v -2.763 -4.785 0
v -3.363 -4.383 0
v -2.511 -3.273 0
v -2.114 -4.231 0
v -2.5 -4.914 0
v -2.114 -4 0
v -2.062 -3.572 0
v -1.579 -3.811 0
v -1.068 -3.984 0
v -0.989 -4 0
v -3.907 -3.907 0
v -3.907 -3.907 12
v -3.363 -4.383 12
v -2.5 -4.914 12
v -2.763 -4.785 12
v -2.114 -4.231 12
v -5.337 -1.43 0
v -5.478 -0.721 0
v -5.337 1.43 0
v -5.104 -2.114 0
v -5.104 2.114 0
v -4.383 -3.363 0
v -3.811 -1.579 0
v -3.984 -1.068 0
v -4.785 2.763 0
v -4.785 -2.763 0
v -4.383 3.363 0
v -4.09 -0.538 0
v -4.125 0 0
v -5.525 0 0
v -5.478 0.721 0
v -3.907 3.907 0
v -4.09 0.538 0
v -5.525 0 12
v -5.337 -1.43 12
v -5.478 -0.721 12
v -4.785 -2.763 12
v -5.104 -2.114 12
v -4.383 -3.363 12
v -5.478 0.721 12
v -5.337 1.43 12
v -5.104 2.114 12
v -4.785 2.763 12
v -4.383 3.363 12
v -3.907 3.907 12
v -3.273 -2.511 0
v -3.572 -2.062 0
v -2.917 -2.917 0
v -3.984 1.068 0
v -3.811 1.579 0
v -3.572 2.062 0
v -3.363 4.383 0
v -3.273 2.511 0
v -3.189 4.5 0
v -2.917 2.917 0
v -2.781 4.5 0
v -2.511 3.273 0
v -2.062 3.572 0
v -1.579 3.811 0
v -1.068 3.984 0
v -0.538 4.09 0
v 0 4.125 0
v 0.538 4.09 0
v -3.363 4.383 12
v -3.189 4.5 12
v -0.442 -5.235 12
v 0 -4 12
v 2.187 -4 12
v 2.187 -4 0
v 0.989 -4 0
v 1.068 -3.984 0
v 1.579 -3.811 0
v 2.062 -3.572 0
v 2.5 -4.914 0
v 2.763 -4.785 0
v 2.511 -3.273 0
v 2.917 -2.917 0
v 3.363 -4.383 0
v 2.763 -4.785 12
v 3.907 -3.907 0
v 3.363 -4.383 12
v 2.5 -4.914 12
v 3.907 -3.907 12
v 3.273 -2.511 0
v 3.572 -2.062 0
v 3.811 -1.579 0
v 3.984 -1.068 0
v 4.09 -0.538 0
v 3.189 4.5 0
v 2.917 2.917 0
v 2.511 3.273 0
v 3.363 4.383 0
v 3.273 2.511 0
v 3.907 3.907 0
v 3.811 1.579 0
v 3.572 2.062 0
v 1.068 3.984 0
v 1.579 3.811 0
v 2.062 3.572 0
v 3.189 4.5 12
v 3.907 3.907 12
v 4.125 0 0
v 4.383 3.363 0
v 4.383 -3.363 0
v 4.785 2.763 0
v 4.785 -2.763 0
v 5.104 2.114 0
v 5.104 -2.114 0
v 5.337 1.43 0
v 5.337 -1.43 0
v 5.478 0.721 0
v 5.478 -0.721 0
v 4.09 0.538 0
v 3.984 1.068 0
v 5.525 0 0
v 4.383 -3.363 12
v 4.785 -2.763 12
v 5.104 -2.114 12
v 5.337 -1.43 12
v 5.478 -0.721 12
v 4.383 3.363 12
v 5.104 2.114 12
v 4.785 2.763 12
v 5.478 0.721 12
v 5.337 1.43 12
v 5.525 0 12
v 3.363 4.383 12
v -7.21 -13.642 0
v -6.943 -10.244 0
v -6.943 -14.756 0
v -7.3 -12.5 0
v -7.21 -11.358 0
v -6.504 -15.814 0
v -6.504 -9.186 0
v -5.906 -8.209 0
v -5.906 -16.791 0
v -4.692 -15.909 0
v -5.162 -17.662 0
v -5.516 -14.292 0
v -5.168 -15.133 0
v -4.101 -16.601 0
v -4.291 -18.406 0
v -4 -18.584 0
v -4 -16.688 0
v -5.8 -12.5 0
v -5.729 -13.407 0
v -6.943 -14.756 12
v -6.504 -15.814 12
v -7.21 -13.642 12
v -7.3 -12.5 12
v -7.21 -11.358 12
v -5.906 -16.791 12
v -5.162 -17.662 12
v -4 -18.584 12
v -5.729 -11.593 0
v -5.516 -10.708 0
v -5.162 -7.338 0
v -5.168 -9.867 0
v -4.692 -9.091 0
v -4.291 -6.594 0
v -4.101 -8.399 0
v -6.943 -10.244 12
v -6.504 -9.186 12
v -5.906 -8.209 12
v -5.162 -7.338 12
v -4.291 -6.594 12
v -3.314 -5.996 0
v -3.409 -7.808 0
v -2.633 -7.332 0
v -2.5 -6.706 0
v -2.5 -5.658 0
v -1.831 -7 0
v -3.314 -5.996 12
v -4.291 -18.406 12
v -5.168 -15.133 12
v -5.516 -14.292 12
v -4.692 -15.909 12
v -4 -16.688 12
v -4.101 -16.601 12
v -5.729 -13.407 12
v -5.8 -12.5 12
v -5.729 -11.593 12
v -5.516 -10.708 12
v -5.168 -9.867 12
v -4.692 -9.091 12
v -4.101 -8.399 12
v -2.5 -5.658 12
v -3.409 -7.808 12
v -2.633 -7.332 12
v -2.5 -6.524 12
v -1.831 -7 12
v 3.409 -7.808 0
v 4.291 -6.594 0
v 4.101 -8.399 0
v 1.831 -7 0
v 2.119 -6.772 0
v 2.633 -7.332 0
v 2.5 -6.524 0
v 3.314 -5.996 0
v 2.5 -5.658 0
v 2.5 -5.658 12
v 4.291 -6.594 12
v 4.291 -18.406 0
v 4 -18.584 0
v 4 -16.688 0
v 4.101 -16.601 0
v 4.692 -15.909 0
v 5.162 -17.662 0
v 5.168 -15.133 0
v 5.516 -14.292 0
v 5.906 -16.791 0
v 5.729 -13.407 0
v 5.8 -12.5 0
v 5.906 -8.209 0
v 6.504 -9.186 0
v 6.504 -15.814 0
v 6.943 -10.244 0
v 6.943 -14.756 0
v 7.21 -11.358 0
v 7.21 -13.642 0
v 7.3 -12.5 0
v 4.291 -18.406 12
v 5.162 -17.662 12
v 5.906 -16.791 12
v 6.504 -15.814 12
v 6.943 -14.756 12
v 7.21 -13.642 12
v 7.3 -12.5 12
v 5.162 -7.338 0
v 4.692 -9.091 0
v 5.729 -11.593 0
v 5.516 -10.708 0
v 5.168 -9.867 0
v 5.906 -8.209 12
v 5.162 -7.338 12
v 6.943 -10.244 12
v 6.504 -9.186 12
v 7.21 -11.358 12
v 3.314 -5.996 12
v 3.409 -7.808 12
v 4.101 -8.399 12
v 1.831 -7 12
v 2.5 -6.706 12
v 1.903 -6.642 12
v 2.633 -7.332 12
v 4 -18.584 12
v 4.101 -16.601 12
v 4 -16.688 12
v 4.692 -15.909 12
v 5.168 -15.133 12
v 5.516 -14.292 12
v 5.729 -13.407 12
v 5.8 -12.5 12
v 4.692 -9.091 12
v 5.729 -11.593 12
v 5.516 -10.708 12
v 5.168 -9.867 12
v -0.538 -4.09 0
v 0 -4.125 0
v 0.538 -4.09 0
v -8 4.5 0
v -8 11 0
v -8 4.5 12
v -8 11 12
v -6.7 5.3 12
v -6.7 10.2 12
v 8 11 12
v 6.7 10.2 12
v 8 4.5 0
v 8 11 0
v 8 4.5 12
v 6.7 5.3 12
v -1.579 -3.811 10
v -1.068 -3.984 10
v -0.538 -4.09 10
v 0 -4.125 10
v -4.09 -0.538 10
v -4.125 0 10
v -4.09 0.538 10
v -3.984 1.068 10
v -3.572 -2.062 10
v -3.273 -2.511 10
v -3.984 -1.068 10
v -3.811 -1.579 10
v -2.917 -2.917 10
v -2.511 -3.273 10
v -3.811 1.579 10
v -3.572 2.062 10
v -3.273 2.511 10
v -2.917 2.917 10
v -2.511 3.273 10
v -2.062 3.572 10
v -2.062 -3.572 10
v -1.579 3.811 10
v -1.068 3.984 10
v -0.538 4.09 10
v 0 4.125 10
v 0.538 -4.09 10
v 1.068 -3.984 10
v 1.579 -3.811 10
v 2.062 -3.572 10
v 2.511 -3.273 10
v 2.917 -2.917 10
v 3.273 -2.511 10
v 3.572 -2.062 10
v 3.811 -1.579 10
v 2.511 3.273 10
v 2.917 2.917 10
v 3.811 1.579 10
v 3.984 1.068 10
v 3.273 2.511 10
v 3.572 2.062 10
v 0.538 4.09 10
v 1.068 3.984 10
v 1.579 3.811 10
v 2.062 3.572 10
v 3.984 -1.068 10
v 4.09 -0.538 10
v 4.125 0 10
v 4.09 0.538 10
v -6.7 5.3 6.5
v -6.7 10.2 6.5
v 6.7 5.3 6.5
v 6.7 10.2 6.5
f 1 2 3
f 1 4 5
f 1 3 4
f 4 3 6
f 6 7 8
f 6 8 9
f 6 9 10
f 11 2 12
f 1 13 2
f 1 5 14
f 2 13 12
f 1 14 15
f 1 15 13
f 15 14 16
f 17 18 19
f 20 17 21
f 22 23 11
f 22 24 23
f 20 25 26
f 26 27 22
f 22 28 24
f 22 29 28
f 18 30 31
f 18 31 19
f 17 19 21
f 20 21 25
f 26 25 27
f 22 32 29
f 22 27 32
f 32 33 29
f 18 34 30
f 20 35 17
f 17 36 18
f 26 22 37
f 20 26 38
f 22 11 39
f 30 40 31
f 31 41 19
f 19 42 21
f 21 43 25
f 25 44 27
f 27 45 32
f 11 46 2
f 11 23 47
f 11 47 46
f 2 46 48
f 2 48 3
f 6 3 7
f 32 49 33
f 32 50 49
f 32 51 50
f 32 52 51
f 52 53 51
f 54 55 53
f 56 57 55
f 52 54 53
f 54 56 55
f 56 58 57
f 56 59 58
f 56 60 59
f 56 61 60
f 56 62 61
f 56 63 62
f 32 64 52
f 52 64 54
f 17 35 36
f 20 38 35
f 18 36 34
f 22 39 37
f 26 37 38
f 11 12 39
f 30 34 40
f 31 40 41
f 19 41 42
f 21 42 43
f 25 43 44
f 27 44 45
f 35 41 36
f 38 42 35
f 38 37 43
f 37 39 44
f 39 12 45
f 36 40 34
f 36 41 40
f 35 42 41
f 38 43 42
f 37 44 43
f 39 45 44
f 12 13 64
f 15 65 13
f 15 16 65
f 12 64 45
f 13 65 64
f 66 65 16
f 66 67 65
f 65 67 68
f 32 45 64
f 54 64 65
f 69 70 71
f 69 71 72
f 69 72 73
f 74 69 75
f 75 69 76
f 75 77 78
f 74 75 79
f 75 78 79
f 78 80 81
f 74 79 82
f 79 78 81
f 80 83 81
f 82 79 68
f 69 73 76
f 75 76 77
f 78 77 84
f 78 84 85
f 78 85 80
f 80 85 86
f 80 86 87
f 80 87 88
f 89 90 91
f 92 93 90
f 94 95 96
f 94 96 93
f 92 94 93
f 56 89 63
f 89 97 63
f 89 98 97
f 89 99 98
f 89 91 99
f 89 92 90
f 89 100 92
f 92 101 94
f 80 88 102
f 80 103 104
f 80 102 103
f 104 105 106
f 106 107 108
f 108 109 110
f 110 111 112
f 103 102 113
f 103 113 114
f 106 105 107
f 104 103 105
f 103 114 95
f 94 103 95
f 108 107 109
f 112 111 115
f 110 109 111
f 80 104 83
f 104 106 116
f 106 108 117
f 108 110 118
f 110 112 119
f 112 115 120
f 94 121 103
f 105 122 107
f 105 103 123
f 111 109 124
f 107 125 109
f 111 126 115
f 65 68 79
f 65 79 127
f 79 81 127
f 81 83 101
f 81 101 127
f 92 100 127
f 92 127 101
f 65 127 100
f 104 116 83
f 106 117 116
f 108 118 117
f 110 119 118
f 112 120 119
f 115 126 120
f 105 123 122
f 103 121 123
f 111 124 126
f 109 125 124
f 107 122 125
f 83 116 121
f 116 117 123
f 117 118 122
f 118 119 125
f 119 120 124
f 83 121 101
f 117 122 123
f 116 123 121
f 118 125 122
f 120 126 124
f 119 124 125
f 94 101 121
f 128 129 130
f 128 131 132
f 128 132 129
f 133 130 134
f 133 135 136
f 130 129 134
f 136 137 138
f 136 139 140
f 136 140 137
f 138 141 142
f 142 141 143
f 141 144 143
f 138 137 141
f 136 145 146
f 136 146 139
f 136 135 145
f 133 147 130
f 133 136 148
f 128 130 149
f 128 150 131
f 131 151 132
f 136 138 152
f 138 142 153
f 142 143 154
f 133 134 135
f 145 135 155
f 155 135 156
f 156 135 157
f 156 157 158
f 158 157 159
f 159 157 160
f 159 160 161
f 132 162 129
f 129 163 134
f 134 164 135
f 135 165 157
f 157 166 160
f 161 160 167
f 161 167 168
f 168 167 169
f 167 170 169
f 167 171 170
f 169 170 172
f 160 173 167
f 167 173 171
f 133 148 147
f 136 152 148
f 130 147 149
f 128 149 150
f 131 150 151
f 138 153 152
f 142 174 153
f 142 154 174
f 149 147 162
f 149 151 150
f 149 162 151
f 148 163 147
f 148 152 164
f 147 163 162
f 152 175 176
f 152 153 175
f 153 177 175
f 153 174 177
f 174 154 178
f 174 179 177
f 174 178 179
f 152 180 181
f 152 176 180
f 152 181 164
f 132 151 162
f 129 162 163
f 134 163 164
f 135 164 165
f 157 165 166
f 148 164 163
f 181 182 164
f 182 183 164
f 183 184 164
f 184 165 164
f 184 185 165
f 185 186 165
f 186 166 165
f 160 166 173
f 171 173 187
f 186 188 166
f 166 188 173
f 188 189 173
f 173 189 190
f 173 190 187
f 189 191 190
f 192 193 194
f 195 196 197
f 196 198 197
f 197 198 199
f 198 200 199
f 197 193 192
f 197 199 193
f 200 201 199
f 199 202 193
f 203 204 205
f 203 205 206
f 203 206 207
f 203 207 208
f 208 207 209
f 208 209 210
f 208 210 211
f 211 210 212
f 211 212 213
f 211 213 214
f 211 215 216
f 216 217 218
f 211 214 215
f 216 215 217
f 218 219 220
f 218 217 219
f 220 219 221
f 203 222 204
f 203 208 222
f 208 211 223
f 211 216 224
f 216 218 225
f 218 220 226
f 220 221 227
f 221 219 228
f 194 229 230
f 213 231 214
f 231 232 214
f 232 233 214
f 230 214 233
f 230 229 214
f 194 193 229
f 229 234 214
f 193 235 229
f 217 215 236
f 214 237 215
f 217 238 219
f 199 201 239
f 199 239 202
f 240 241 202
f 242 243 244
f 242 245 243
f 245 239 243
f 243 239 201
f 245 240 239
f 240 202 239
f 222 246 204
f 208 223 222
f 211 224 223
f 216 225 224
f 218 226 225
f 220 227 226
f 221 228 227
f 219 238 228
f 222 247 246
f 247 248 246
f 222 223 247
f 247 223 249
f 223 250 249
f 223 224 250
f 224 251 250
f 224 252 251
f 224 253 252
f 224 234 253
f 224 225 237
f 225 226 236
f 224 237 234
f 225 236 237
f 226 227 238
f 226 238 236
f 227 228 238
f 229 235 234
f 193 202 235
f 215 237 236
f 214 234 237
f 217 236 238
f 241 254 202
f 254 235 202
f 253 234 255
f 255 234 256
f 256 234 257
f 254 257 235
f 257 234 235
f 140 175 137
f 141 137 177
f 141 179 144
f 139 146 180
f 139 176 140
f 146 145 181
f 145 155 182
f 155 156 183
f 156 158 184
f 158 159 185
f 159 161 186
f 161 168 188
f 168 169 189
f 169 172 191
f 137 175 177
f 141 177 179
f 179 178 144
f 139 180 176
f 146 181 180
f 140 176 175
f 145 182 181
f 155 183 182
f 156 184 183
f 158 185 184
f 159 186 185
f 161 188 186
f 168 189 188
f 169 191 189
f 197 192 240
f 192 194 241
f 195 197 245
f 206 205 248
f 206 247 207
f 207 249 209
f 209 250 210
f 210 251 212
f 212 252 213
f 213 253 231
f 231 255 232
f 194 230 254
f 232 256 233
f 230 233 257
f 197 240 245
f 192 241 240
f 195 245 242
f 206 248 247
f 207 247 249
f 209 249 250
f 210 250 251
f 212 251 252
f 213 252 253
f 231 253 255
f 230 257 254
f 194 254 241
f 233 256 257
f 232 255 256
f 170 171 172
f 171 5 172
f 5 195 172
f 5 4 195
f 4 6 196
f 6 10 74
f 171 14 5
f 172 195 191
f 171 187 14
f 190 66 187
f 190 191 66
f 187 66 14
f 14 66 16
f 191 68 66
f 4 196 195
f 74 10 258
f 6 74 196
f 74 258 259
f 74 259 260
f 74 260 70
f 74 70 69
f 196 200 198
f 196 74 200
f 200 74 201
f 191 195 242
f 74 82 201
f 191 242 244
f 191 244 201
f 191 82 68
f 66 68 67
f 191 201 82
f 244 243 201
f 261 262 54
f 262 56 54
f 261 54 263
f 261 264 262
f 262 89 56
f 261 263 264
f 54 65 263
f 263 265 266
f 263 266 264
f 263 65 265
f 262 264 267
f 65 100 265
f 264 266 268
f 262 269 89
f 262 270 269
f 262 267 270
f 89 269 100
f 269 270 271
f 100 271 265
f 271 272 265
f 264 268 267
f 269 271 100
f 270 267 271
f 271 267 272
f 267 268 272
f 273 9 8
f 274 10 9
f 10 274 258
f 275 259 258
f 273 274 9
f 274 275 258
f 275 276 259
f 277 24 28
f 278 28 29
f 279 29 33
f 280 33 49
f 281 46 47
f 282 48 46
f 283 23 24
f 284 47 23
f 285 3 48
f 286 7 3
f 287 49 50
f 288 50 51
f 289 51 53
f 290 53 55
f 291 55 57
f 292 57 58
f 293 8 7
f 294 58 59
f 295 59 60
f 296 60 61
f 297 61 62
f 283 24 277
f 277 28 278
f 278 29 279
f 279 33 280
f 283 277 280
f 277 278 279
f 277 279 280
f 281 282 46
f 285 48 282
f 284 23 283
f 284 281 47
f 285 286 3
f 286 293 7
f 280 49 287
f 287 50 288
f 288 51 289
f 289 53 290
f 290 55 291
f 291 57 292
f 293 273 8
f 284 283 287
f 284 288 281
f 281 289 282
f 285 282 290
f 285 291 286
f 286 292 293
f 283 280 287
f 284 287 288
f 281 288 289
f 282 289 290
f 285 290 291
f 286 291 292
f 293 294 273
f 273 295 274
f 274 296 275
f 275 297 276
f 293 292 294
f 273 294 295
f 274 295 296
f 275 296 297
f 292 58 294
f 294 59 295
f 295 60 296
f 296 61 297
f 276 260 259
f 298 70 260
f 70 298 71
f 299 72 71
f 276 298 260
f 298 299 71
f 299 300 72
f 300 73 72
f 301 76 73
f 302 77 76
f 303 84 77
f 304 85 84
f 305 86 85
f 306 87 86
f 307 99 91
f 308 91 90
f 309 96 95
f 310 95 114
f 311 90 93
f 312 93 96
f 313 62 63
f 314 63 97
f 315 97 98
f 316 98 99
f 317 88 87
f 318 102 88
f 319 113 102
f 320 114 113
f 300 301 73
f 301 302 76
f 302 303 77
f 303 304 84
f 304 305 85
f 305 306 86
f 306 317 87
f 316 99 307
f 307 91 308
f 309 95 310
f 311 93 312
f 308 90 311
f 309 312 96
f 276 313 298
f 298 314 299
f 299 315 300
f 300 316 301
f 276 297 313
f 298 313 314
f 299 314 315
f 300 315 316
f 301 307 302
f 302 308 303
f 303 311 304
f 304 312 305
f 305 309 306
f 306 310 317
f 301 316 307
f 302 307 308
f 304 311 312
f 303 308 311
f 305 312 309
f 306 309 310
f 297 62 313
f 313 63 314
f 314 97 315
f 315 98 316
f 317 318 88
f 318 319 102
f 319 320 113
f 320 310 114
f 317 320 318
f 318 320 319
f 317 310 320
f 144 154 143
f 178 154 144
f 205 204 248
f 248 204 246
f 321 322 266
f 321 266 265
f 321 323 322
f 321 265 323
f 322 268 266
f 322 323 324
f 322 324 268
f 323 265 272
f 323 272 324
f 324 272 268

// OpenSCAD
// H17_exit_clamp  (qty 1; frame: local; MJF PA12; print service OK)
// GENERATED by gen_halo_stl.py from halo_parts.py. Change numbers in halo_params.scad.
// Every dimension below is an expression of the names in halo_params.scad.
include <../halo_params.scad>

difference() {
    union() {
        cylinder(h = 12, r = SOCK_D / 2 + SOCK_WALL, center = false, $fn = 48);
        translate([0, -12.5, 0]) {
            difference() {
                cylinder(h = 12, r = 7.3, center = false, $fn = 40);
                translate([0, 0, -1]) {
                    cylinder(h = 14, r = 5.8, center = false, $fn = 40);
                }
            }
        }
        translate([-2.5, -7, 0]) {
            cube([5, 3, 12], center = false);
        }
        translate([-8, 4.5, 0]) {
            cube([16, 6.5, 12], center = false);
        }
    }
    translate([0, 0, -1]) {
        cylinder(h = 11, r = SOCK_D / 2, center = false, $fn = 48);
    }
    translate([-4, -24, -1]) {
        cube([8, 8, 14], center = false);
    }
    translate([-6.7, 5.3, 6.5]) {
        cube([13.4, 4.9, 5.6], center = false);
    }
}
